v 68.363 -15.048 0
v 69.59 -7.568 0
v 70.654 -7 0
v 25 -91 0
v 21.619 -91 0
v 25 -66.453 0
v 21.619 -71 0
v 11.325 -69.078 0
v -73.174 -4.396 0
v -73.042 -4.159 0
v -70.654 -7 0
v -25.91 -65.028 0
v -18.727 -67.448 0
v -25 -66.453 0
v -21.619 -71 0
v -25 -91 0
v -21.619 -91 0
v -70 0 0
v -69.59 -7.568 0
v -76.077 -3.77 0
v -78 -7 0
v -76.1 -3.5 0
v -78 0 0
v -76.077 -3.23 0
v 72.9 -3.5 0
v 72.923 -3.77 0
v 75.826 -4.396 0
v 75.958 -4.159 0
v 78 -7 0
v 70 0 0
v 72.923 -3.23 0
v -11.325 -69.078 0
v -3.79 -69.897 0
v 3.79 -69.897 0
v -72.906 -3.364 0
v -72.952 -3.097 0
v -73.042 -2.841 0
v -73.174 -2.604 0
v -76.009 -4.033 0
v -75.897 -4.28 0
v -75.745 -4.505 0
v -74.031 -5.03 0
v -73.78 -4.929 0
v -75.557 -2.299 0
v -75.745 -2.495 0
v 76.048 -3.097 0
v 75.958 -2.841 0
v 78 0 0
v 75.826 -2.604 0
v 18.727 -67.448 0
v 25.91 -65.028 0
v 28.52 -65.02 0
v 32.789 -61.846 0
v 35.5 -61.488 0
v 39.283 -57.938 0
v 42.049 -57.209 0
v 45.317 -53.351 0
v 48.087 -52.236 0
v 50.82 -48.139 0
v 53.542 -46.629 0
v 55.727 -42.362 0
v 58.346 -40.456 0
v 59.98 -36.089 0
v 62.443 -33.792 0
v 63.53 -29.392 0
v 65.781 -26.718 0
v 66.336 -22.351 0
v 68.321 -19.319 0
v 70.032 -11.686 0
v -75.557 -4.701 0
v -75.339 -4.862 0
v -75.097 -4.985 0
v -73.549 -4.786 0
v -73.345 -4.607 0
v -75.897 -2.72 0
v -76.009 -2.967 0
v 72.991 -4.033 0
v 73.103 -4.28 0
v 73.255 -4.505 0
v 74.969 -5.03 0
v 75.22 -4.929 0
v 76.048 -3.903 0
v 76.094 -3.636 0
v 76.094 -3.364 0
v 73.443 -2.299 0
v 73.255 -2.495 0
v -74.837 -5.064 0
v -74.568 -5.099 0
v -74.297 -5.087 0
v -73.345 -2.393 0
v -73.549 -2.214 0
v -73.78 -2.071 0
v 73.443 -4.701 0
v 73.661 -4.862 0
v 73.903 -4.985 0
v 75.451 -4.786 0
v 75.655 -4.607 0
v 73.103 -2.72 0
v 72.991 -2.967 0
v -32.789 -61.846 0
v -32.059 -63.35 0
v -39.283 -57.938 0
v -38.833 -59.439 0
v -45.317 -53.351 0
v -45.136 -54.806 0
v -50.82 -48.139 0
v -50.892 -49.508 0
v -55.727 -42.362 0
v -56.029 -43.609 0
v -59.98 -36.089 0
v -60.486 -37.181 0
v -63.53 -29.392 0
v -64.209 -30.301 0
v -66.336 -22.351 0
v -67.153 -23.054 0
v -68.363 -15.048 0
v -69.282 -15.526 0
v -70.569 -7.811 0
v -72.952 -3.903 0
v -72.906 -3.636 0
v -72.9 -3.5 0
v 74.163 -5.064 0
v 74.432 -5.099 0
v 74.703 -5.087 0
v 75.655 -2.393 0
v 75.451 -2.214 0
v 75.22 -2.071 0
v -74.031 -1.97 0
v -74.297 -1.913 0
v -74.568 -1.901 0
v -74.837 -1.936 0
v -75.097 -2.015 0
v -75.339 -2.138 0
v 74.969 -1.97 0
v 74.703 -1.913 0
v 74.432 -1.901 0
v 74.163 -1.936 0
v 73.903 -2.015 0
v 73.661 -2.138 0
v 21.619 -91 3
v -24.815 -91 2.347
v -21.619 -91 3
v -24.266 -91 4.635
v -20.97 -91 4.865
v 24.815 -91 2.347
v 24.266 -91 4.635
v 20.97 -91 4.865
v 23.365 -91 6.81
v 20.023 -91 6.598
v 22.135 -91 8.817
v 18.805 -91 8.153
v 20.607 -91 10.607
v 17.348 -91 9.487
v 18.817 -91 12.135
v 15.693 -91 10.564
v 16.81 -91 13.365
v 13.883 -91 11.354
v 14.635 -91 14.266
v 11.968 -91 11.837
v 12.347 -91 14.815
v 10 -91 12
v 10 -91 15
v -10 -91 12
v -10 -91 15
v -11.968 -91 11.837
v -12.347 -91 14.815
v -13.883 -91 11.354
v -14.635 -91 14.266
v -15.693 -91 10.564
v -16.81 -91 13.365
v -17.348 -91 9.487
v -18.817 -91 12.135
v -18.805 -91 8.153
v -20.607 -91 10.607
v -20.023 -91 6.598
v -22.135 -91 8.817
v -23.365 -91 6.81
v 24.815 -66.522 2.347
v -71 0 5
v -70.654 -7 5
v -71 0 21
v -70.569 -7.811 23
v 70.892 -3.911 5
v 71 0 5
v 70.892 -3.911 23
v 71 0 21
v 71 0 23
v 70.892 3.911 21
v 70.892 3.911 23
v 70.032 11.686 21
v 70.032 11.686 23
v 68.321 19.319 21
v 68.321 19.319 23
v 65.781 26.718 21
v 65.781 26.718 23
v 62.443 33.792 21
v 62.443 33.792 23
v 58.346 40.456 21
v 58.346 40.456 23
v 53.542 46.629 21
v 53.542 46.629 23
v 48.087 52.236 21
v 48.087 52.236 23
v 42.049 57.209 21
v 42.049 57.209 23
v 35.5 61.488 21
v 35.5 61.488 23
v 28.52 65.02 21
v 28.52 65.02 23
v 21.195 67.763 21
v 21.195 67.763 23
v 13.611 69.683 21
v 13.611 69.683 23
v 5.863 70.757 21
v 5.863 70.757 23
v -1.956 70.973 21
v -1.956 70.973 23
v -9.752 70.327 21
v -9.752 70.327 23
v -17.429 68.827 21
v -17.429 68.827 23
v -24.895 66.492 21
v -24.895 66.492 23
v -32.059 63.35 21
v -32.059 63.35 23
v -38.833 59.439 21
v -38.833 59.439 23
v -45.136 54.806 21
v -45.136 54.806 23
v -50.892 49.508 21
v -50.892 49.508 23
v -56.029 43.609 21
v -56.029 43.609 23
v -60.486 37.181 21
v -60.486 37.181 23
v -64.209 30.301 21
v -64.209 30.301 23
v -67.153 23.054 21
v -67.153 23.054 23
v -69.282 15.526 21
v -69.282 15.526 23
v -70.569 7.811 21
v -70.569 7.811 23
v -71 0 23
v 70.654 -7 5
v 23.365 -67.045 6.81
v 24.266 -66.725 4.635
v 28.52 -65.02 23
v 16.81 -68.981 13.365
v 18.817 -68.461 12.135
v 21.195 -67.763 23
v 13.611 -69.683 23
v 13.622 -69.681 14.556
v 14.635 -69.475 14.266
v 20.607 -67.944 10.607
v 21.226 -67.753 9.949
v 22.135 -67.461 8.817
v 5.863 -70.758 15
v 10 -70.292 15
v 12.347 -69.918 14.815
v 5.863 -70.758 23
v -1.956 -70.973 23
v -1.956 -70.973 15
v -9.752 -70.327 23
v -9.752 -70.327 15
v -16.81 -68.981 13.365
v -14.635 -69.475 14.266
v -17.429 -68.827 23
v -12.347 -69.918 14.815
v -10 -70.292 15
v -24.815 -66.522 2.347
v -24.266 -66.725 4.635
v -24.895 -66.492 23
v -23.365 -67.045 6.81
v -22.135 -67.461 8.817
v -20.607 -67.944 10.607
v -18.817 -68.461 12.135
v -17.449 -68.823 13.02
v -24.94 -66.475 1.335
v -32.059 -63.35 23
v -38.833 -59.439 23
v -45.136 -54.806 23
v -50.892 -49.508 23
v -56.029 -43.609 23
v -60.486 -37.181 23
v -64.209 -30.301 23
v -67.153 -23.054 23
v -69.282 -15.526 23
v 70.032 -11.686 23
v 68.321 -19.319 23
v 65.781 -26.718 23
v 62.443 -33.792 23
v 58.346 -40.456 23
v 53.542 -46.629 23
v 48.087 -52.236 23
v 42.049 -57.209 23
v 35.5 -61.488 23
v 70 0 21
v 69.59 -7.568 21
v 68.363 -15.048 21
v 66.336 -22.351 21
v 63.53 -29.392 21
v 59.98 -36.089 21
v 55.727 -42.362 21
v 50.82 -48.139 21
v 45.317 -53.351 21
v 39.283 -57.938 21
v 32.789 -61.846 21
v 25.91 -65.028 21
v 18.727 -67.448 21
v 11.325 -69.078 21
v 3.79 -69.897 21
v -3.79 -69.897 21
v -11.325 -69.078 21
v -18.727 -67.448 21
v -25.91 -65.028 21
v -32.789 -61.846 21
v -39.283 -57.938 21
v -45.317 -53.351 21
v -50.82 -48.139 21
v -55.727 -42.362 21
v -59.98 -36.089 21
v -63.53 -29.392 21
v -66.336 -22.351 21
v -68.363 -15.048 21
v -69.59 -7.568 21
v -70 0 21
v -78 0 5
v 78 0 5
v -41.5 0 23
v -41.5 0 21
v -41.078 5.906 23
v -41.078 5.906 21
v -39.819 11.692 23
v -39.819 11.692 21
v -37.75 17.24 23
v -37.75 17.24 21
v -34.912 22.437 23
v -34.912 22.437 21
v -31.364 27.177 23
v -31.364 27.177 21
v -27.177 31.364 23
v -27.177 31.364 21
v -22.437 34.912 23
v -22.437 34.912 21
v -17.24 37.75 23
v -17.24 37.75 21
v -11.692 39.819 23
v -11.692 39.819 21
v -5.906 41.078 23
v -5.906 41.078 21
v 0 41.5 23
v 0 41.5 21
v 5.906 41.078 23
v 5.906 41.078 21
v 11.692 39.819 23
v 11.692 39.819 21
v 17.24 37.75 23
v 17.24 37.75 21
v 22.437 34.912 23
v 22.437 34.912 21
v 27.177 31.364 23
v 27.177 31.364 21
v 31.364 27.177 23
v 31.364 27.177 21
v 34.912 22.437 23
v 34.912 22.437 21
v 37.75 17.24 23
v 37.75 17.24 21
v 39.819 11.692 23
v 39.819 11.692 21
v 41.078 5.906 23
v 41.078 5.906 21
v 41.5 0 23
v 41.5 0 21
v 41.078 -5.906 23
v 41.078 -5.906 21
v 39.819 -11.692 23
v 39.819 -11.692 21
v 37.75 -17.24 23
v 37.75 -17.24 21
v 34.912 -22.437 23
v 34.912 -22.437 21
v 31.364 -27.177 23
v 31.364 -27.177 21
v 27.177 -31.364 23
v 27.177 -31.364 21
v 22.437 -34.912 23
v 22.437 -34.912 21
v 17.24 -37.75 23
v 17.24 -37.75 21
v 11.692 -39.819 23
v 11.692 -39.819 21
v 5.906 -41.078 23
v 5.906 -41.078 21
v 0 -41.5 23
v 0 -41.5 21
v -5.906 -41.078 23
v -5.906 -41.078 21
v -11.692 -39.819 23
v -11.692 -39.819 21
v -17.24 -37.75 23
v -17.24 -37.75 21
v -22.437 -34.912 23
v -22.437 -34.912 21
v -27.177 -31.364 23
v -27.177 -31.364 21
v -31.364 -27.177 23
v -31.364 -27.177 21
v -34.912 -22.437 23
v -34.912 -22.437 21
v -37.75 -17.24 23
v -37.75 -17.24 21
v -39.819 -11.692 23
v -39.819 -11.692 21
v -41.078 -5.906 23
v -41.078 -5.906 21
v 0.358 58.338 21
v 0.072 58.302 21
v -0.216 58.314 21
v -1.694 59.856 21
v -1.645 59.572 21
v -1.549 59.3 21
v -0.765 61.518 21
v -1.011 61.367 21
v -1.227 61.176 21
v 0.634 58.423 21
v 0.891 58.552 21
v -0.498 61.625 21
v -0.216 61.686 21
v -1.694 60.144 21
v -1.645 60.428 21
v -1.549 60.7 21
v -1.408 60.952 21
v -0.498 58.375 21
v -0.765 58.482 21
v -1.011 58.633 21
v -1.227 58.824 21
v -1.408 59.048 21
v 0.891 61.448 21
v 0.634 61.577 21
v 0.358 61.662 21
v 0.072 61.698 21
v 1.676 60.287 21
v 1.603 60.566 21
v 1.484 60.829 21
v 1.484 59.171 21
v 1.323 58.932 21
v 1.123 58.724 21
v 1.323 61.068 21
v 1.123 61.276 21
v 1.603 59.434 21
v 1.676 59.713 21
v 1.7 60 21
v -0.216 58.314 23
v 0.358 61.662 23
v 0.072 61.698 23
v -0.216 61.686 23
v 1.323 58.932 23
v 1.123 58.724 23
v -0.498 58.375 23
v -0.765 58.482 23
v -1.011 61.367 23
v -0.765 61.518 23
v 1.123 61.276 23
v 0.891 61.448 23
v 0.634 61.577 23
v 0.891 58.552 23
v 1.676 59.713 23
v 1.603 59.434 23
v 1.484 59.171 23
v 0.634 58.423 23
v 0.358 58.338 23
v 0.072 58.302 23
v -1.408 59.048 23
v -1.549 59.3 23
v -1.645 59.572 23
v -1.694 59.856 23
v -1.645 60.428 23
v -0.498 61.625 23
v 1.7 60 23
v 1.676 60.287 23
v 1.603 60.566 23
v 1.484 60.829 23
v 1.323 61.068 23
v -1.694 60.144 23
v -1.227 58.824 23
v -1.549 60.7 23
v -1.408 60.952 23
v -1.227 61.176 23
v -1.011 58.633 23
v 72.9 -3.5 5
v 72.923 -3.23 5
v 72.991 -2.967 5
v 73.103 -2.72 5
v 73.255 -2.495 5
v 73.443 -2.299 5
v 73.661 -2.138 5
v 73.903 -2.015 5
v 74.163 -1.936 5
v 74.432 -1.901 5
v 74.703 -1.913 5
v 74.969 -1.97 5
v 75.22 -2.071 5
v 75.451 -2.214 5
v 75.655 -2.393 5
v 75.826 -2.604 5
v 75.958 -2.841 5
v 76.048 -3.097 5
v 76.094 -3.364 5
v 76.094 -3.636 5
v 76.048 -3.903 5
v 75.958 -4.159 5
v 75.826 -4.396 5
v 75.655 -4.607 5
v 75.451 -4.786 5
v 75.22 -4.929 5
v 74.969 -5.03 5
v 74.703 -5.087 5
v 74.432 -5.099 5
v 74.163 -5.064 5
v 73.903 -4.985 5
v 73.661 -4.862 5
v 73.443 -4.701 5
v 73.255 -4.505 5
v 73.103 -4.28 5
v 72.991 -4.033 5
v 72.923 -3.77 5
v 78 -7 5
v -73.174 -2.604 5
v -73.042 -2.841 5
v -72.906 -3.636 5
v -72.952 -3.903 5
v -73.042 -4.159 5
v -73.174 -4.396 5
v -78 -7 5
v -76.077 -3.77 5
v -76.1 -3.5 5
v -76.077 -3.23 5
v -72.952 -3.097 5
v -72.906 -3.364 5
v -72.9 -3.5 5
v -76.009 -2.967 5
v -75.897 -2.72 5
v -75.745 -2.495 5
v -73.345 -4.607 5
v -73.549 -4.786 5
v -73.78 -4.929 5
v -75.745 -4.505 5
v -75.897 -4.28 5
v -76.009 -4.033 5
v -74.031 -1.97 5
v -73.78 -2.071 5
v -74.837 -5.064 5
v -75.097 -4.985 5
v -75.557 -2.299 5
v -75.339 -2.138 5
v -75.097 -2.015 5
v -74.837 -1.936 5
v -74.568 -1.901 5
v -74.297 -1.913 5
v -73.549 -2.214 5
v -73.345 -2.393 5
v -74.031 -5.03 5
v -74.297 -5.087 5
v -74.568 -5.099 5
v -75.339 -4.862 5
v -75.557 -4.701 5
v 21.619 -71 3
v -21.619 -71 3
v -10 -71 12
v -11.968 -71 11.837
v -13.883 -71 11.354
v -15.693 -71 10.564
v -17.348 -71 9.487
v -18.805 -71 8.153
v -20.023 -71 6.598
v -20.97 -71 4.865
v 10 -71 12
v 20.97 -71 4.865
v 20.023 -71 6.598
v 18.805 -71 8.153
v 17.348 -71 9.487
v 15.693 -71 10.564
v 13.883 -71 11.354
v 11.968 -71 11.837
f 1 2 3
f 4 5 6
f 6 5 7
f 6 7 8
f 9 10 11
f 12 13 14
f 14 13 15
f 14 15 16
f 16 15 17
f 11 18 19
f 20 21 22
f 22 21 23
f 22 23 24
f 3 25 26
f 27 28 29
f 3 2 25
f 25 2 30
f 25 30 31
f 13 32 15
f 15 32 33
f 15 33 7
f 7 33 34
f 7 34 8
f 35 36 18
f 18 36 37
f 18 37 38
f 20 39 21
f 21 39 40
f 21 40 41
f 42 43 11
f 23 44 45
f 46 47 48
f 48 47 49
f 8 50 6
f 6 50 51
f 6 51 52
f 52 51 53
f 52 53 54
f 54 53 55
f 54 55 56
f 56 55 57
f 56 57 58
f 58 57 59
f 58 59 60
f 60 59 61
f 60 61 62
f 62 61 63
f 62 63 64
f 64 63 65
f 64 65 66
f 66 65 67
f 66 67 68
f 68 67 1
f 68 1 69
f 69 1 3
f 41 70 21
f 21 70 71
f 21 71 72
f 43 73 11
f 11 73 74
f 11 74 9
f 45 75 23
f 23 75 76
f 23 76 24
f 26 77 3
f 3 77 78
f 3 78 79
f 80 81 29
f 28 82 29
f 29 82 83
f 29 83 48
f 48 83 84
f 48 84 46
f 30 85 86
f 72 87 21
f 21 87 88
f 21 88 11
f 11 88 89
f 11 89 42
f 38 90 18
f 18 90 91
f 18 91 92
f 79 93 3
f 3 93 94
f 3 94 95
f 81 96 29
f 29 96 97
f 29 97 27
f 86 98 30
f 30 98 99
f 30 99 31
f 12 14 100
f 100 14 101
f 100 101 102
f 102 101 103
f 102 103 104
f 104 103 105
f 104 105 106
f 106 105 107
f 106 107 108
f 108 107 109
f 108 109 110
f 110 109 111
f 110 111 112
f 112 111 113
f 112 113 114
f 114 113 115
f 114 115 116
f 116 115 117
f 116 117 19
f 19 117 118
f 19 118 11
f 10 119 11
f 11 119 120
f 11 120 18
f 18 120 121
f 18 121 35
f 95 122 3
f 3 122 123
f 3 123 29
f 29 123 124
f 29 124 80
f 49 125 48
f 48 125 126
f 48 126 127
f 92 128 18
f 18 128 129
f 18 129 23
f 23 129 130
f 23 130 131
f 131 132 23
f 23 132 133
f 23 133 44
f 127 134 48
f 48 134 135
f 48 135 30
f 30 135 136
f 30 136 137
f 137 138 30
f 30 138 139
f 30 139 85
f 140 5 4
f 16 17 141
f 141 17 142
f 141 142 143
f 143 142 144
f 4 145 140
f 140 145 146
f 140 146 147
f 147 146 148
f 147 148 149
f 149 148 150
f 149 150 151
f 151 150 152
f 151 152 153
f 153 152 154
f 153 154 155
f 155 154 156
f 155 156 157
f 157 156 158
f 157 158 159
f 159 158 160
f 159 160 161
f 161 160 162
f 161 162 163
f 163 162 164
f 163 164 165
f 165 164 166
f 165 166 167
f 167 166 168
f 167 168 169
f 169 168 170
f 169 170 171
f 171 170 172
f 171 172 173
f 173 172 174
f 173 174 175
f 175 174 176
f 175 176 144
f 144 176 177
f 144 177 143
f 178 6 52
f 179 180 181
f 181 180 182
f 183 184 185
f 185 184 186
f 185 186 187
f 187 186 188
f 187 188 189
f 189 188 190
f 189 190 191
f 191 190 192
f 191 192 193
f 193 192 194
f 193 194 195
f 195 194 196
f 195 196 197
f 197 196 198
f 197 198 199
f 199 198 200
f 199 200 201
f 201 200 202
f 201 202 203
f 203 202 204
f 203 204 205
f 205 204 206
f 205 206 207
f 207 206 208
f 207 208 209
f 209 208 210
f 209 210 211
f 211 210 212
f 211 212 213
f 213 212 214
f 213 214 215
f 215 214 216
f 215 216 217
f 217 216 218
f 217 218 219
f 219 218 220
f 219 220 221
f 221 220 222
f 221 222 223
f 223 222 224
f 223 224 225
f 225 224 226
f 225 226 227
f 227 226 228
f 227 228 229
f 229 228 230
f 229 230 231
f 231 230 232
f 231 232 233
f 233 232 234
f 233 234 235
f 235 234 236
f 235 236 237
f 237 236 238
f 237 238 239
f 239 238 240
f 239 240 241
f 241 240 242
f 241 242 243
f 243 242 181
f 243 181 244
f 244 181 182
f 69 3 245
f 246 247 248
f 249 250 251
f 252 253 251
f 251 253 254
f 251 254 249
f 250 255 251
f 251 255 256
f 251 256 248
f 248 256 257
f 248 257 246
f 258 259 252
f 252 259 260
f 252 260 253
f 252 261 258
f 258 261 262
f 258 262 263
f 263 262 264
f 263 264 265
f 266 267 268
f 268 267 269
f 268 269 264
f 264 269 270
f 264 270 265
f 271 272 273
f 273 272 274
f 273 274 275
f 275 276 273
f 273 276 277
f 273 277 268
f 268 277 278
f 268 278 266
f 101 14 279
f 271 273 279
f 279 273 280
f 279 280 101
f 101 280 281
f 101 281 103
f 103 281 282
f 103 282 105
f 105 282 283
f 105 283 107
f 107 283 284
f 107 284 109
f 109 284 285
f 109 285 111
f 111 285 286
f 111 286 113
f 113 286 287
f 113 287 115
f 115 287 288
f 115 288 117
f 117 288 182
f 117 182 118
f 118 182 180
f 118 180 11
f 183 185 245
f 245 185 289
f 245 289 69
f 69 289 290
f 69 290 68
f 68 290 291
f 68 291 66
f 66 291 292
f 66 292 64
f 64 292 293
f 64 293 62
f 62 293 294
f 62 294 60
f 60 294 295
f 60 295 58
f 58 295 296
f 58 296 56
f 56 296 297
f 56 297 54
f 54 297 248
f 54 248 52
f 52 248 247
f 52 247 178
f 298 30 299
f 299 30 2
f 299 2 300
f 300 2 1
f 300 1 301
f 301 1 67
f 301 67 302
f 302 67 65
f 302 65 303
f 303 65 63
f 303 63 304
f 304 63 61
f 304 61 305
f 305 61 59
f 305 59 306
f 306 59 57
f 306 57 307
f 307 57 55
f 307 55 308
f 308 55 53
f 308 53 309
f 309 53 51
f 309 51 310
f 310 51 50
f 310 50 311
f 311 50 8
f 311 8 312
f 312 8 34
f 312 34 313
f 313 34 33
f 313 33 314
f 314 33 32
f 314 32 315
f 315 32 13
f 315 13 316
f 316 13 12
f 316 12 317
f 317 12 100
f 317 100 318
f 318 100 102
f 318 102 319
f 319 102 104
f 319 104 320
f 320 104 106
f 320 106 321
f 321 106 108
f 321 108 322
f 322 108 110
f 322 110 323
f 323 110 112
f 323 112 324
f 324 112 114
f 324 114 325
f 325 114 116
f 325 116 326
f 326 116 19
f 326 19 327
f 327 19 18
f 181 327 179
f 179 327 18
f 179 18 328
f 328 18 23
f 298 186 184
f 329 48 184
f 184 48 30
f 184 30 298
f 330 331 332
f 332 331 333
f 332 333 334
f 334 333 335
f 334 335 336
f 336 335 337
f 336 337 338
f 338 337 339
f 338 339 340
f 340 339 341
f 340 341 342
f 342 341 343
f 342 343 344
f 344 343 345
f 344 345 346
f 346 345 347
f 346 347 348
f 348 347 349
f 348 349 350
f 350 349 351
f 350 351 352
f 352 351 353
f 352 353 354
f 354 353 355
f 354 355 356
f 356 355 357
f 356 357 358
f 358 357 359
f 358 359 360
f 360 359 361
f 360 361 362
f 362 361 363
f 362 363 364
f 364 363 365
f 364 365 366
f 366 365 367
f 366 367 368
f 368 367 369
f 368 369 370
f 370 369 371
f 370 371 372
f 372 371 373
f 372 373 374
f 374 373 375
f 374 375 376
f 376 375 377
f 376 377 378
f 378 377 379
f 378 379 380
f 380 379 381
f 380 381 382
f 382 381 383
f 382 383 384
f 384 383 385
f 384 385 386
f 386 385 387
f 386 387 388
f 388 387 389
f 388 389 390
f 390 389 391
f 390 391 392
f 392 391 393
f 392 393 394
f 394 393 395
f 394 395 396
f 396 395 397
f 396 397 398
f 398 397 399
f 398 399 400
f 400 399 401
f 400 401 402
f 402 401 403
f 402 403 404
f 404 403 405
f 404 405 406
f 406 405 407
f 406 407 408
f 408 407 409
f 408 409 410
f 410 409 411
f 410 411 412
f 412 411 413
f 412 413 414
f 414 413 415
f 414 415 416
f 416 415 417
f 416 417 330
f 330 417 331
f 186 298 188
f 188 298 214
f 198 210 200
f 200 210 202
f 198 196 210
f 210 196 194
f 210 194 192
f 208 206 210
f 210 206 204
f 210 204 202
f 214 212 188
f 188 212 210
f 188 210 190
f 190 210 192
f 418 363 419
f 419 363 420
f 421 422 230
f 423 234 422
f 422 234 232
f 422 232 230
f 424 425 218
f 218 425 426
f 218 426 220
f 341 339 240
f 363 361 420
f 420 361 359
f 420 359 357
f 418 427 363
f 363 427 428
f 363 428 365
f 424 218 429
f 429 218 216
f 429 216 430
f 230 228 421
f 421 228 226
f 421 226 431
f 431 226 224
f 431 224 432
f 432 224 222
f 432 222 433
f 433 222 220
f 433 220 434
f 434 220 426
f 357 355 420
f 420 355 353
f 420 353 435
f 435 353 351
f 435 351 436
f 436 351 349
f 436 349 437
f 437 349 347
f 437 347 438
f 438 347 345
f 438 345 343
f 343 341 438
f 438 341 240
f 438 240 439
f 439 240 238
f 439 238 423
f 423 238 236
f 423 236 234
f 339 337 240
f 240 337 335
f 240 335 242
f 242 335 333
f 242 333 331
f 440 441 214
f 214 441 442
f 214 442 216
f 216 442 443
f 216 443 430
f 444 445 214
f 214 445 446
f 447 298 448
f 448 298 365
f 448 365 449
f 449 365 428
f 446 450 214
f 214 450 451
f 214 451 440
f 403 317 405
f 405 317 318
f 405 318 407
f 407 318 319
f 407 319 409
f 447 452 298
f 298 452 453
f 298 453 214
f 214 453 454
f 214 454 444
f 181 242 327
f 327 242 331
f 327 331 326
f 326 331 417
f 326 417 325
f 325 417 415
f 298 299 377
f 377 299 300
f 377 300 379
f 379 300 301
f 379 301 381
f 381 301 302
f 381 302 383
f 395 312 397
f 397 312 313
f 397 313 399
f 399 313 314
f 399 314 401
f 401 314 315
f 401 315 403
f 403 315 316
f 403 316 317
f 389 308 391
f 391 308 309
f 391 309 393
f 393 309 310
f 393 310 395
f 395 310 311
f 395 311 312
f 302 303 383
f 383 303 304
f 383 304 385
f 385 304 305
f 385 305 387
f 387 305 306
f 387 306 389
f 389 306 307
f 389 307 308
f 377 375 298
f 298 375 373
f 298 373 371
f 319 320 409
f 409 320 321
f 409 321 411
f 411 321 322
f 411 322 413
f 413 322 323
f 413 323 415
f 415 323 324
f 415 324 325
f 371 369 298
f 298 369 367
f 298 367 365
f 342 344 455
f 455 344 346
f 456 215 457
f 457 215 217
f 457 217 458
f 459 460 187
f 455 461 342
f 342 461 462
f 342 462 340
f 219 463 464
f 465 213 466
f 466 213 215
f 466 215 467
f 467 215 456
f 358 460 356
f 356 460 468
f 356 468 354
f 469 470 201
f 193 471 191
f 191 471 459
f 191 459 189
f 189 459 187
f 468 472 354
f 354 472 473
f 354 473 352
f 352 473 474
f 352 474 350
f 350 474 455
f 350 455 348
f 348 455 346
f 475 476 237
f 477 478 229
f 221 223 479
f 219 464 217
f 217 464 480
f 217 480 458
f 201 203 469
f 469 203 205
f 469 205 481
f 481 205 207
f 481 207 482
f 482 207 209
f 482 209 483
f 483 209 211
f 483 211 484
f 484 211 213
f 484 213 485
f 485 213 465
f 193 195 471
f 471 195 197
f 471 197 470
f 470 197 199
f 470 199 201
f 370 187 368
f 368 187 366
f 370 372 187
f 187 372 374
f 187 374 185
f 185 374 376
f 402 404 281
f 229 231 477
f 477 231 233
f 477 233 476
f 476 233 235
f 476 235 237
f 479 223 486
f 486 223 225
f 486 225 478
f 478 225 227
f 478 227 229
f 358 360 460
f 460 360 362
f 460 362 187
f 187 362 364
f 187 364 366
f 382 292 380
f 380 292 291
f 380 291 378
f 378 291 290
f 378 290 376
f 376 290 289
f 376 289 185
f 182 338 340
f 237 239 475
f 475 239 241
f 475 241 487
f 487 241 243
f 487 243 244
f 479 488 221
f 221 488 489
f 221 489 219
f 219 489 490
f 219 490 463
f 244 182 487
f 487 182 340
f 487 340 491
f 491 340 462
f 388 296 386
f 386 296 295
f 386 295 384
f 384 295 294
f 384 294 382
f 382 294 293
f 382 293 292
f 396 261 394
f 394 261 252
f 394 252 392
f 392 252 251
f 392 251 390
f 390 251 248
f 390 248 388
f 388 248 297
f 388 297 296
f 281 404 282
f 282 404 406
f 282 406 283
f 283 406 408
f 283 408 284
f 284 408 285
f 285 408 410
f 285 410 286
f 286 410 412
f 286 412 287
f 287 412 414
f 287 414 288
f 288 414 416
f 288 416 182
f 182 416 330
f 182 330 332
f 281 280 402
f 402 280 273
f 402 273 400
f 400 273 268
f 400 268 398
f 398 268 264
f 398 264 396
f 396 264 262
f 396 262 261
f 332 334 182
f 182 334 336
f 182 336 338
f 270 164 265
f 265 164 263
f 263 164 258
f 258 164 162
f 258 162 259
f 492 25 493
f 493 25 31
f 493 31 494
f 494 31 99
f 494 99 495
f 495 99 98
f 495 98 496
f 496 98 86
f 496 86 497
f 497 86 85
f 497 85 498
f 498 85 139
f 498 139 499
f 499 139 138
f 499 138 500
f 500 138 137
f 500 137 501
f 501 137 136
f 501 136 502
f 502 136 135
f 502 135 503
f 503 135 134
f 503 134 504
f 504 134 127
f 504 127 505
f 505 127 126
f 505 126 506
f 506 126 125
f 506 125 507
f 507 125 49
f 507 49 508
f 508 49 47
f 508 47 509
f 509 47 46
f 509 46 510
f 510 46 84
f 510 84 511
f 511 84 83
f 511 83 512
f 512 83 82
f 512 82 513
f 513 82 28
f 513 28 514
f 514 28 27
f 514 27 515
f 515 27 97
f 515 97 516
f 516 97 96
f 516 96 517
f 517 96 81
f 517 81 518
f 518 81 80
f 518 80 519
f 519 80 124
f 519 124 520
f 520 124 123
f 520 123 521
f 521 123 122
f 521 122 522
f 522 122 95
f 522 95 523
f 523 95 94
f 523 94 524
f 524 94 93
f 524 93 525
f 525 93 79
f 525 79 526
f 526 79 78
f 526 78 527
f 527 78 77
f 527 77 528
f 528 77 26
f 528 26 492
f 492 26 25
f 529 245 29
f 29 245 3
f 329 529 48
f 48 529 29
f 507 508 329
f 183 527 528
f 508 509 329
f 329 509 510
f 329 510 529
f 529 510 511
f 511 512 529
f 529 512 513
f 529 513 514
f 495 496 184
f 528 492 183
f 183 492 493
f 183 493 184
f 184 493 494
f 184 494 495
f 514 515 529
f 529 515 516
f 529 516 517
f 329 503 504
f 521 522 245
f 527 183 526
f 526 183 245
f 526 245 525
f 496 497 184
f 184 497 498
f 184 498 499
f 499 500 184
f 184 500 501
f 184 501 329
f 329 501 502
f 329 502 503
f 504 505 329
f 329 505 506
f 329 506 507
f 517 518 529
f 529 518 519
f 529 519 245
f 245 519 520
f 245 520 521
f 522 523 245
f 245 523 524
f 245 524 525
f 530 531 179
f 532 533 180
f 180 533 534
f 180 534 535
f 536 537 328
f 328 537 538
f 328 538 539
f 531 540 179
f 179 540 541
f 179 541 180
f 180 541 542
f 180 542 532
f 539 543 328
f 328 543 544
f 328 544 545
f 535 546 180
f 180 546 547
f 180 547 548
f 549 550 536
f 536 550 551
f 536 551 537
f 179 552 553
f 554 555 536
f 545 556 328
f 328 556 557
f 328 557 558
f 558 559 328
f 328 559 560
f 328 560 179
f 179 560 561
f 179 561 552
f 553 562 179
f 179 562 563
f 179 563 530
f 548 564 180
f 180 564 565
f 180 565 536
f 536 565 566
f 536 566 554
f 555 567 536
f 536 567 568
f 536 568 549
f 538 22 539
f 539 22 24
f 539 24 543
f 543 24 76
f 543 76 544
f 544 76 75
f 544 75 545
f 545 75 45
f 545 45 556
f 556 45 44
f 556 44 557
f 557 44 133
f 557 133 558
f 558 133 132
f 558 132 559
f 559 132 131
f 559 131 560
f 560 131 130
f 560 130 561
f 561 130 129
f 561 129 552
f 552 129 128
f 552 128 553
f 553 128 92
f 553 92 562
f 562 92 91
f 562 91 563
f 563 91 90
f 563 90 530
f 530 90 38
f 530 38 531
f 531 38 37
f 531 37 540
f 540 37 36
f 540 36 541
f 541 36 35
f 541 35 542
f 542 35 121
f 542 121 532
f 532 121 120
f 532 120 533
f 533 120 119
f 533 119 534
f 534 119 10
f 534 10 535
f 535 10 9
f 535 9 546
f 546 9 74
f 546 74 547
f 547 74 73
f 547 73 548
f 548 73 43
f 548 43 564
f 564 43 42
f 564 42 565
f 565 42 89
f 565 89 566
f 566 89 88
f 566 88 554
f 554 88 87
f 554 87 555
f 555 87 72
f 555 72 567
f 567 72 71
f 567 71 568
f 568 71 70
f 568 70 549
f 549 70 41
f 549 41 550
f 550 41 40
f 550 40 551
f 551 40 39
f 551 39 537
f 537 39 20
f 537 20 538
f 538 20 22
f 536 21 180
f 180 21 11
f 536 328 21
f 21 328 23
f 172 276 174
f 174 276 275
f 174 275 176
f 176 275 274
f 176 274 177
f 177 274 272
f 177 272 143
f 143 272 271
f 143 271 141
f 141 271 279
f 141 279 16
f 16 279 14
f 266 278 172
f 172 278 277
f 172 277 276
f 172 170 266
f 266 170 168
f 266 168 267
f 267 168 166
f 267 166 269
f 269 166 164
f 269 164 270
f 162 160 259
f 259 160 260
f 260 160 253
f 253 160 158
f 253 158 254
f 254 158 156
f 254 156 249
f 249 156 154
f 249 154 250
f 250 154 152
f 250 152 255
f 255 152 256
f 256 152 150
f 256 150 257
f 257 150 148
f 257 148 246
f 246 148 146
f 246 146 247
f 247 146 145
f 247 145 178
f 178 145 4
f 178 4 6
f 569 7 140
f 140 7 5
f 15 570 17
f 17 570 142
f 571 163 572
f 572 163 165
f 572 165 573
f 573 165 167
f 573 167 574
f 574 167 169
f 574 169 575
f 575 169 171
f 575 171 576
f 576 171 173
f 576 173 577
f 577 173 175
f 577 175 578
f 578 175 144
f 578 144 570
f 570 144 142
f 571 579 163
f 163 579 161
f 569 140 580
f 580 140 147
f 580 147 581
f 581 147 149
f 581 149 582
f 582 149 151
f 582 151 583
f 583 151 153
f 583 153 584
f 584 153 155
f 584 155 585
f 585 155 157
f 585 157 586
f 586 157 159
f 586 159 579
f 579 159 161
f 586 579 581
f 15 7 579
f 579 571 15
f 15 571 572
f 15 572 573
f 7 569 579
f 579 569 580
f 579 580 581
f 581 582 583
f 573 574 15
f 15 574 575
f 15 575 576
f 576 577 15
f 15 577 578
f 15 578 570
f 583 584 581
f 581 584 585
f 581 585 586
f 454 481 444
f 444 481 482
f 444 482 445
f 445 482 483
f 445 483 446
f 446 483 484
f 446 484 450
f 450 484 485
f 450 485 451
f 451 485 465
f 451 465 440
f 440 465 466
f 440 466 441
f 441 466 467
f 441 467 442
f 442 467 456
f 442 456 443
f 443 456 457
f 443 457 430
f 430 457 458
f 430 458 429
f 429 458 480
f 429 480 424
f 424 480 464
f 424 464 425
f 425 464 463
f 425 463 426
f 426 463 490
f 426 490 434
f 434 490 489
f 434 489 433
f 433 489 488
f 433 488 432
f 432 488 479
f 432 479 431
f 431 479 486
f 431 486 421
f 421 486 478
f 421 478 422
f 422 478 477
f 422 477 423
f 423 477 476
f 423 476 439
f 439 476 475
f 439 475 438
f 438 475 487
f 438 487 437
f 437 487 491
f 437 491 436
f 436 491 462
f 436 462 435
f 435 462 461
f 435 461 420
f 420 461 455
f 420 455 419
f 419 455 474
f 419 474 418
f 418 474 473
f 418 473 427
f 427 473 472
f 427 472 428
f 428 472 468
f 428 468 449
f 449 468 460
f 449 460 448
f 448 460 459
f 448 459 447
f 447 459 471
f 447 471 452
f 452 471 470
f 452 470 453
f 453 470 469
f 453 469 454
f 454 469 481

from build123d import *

# Parameters (mm, degrees)
BOSS_EXTRUDE1_DEPTH = 21
SKETCH2_R           = 71
SKETCH2_R_2         = 41.5
BOSS_EXTRUDE2_DEPTH = 2
SKETCH3_W           = 50
SKETCH3_H           = 20
BOSS_EXTRUDE3_DEPTH = 15
SKETCH8_R           = 1.6
BOSS_EXTRUDE5_DEPTH = 5
FILLET2_R           = 15
SKETCH11_W          = 43.237900078
SKETCH11_H          = 3
CUT_EXTRUDE7_DEPTH  = 20
SKETCH12_R          = 1.7
CUT_EXTRUDE8_DEPTH  = 10


with BuildPart() as part:
    # Sketch1 → Boss-Extrude1 (new body)
    with BuildSketch(Plane.XY):
        with BuildLine():
            Line((71, 0), (70, 0))
            ThreePointArc((70, 0), (0, -70), (-70, 0))
            Line((-70, 0), (-71, 0))
            ThreePointArc((-71, 0), (0, -71), (71, 0))
        make_face()
    extrude(amount=BOSS_EXTRUDE1_DEPTH)

    # Sketch2 → Boss-Extrude2 (add)
    with BuildSketch(Plane.XY.offset(21)):
        Circle(SKETCH2_R)
        Circle(SKETCH2_R_2, mode=Mode.SUBTRACT)
    extrude(amount=BOSS_EXTRUDE2_DEPTH)

    # Sketch3 → Boss-Extrude3 (add)
    with BuildSketch(Plane(origin=(0, 0, 0), x_dir=(-1, 0, 0), z_dir=(0, 0, -1))):
        with BuildLine():
            Line((-25, -66.452990903), (-25, -71))
            Line((-25, -71), (0, -71))
            ThreePointArc((0, -71), (-12.705070757, -69.853999006), (-25, -66.452990903))
        make_face()
        with BuildLine():
            ThreePointArc((25, -66.452990903), (12.705070757, -69.853999006), (0, -71))
            Line((0, -71), (25, -71))
            Line((25, -71), (25, -66.452990903))
        make_face()
        with Locations((0, -81)):
            Rectangle(SKETCH3_W, SKETCH3_H)
    extrude(amount=-BOSS_EXTRUDE3_DEPTH)

    # Sketch8 → Boss-Extrude5 (add)
    # profile 1 of 2: a face of its own
    with BuildSketch(Plane(origin=(0, 0, 0), x_dir=(-1, 0, 0), z_dir=(0, 0, -1))):
        with BuildLine():
            ThreePointArc((-70.654086931, -7), (-70.913469003, -3.504270818), (-71, 0))
            Line((-71, 0), (-78, 0))
            Line((-78, 0), (-78, -7))
            Line((-78, -7), (-70.654086931, -7))
        make_face()
        with Locations((-74.5, -3.5)):
            Circle(SKETCH8_R, mode=Mode.SUBTRACT)
    # profile 2 of 2: a face of its own
    with BuildSketch(Plane(origin=(0, 0, 0), x_dir=(-1, 0, 0), z_dir=(0, 0, -1))):
        with BuildLine():
            Line((78, 0), (71, 0))
            ThreePointArc((71, 0), (70.913469003, -3.504270818), (70.654086931, -7))
            Line((70.654086931, -7), (78, -7))
            Line((78, -7), (78, 0))
        make_face()
        with Locations(Location((74.5, -3.5, 0), (0, 0, 180))):
            Circle(SKETCH8_R, mode=Mode.SUBTRACT)
    extrude(amount=-BOSS_EXTRUDE5_DEPTH)

    # Fillet2
    fillet2_edges = [part.edges().sort_by_distance(p)[0] for p in [
        (-25, -78.726495452, 15),
        (25, -78.726495452, 15),
    ]]
    fillet(fillet2_edges, radius=FILLET2_R - 0.0001)  # a hair under: the kernel refuses the full size

    # Sketch11 → Cut-Extrude7 (cut)
    with BuildSketch(Plane.XZ.offset(91)):
        with Locations((0, 1.5)):
            Rectangle(SKETCH11_W, SKETCH11_H)
        with BuildLine():
            Line((-21.618950039, 3), (21.618950039, 3))
            ThreePointArc((21.618950039, 3), (17.348469228, 9.486832981), (10, 12))
            Line((10, 12), (-10, 12))
            ThreePointArc((-10, 12), (-17.348469228, 9.486832981), (-21.618950039, 3))
        make_face()
    extrude(amount=-CUT_EXTRUDE7_DEPTH, mode=Mode.SUBTRACT)

    # Sketch12 → Cut-Extrude8 (cut)
    with BuildSketch(Plane.XY.offset(23)):
        with Locations((0, 60)):
            Circle(SKETCH12_R)
    extrude(amount=-CUT_EXTRUDE8_DEPTH, mode=Mode.SUBTRACT)


solid = part.part
